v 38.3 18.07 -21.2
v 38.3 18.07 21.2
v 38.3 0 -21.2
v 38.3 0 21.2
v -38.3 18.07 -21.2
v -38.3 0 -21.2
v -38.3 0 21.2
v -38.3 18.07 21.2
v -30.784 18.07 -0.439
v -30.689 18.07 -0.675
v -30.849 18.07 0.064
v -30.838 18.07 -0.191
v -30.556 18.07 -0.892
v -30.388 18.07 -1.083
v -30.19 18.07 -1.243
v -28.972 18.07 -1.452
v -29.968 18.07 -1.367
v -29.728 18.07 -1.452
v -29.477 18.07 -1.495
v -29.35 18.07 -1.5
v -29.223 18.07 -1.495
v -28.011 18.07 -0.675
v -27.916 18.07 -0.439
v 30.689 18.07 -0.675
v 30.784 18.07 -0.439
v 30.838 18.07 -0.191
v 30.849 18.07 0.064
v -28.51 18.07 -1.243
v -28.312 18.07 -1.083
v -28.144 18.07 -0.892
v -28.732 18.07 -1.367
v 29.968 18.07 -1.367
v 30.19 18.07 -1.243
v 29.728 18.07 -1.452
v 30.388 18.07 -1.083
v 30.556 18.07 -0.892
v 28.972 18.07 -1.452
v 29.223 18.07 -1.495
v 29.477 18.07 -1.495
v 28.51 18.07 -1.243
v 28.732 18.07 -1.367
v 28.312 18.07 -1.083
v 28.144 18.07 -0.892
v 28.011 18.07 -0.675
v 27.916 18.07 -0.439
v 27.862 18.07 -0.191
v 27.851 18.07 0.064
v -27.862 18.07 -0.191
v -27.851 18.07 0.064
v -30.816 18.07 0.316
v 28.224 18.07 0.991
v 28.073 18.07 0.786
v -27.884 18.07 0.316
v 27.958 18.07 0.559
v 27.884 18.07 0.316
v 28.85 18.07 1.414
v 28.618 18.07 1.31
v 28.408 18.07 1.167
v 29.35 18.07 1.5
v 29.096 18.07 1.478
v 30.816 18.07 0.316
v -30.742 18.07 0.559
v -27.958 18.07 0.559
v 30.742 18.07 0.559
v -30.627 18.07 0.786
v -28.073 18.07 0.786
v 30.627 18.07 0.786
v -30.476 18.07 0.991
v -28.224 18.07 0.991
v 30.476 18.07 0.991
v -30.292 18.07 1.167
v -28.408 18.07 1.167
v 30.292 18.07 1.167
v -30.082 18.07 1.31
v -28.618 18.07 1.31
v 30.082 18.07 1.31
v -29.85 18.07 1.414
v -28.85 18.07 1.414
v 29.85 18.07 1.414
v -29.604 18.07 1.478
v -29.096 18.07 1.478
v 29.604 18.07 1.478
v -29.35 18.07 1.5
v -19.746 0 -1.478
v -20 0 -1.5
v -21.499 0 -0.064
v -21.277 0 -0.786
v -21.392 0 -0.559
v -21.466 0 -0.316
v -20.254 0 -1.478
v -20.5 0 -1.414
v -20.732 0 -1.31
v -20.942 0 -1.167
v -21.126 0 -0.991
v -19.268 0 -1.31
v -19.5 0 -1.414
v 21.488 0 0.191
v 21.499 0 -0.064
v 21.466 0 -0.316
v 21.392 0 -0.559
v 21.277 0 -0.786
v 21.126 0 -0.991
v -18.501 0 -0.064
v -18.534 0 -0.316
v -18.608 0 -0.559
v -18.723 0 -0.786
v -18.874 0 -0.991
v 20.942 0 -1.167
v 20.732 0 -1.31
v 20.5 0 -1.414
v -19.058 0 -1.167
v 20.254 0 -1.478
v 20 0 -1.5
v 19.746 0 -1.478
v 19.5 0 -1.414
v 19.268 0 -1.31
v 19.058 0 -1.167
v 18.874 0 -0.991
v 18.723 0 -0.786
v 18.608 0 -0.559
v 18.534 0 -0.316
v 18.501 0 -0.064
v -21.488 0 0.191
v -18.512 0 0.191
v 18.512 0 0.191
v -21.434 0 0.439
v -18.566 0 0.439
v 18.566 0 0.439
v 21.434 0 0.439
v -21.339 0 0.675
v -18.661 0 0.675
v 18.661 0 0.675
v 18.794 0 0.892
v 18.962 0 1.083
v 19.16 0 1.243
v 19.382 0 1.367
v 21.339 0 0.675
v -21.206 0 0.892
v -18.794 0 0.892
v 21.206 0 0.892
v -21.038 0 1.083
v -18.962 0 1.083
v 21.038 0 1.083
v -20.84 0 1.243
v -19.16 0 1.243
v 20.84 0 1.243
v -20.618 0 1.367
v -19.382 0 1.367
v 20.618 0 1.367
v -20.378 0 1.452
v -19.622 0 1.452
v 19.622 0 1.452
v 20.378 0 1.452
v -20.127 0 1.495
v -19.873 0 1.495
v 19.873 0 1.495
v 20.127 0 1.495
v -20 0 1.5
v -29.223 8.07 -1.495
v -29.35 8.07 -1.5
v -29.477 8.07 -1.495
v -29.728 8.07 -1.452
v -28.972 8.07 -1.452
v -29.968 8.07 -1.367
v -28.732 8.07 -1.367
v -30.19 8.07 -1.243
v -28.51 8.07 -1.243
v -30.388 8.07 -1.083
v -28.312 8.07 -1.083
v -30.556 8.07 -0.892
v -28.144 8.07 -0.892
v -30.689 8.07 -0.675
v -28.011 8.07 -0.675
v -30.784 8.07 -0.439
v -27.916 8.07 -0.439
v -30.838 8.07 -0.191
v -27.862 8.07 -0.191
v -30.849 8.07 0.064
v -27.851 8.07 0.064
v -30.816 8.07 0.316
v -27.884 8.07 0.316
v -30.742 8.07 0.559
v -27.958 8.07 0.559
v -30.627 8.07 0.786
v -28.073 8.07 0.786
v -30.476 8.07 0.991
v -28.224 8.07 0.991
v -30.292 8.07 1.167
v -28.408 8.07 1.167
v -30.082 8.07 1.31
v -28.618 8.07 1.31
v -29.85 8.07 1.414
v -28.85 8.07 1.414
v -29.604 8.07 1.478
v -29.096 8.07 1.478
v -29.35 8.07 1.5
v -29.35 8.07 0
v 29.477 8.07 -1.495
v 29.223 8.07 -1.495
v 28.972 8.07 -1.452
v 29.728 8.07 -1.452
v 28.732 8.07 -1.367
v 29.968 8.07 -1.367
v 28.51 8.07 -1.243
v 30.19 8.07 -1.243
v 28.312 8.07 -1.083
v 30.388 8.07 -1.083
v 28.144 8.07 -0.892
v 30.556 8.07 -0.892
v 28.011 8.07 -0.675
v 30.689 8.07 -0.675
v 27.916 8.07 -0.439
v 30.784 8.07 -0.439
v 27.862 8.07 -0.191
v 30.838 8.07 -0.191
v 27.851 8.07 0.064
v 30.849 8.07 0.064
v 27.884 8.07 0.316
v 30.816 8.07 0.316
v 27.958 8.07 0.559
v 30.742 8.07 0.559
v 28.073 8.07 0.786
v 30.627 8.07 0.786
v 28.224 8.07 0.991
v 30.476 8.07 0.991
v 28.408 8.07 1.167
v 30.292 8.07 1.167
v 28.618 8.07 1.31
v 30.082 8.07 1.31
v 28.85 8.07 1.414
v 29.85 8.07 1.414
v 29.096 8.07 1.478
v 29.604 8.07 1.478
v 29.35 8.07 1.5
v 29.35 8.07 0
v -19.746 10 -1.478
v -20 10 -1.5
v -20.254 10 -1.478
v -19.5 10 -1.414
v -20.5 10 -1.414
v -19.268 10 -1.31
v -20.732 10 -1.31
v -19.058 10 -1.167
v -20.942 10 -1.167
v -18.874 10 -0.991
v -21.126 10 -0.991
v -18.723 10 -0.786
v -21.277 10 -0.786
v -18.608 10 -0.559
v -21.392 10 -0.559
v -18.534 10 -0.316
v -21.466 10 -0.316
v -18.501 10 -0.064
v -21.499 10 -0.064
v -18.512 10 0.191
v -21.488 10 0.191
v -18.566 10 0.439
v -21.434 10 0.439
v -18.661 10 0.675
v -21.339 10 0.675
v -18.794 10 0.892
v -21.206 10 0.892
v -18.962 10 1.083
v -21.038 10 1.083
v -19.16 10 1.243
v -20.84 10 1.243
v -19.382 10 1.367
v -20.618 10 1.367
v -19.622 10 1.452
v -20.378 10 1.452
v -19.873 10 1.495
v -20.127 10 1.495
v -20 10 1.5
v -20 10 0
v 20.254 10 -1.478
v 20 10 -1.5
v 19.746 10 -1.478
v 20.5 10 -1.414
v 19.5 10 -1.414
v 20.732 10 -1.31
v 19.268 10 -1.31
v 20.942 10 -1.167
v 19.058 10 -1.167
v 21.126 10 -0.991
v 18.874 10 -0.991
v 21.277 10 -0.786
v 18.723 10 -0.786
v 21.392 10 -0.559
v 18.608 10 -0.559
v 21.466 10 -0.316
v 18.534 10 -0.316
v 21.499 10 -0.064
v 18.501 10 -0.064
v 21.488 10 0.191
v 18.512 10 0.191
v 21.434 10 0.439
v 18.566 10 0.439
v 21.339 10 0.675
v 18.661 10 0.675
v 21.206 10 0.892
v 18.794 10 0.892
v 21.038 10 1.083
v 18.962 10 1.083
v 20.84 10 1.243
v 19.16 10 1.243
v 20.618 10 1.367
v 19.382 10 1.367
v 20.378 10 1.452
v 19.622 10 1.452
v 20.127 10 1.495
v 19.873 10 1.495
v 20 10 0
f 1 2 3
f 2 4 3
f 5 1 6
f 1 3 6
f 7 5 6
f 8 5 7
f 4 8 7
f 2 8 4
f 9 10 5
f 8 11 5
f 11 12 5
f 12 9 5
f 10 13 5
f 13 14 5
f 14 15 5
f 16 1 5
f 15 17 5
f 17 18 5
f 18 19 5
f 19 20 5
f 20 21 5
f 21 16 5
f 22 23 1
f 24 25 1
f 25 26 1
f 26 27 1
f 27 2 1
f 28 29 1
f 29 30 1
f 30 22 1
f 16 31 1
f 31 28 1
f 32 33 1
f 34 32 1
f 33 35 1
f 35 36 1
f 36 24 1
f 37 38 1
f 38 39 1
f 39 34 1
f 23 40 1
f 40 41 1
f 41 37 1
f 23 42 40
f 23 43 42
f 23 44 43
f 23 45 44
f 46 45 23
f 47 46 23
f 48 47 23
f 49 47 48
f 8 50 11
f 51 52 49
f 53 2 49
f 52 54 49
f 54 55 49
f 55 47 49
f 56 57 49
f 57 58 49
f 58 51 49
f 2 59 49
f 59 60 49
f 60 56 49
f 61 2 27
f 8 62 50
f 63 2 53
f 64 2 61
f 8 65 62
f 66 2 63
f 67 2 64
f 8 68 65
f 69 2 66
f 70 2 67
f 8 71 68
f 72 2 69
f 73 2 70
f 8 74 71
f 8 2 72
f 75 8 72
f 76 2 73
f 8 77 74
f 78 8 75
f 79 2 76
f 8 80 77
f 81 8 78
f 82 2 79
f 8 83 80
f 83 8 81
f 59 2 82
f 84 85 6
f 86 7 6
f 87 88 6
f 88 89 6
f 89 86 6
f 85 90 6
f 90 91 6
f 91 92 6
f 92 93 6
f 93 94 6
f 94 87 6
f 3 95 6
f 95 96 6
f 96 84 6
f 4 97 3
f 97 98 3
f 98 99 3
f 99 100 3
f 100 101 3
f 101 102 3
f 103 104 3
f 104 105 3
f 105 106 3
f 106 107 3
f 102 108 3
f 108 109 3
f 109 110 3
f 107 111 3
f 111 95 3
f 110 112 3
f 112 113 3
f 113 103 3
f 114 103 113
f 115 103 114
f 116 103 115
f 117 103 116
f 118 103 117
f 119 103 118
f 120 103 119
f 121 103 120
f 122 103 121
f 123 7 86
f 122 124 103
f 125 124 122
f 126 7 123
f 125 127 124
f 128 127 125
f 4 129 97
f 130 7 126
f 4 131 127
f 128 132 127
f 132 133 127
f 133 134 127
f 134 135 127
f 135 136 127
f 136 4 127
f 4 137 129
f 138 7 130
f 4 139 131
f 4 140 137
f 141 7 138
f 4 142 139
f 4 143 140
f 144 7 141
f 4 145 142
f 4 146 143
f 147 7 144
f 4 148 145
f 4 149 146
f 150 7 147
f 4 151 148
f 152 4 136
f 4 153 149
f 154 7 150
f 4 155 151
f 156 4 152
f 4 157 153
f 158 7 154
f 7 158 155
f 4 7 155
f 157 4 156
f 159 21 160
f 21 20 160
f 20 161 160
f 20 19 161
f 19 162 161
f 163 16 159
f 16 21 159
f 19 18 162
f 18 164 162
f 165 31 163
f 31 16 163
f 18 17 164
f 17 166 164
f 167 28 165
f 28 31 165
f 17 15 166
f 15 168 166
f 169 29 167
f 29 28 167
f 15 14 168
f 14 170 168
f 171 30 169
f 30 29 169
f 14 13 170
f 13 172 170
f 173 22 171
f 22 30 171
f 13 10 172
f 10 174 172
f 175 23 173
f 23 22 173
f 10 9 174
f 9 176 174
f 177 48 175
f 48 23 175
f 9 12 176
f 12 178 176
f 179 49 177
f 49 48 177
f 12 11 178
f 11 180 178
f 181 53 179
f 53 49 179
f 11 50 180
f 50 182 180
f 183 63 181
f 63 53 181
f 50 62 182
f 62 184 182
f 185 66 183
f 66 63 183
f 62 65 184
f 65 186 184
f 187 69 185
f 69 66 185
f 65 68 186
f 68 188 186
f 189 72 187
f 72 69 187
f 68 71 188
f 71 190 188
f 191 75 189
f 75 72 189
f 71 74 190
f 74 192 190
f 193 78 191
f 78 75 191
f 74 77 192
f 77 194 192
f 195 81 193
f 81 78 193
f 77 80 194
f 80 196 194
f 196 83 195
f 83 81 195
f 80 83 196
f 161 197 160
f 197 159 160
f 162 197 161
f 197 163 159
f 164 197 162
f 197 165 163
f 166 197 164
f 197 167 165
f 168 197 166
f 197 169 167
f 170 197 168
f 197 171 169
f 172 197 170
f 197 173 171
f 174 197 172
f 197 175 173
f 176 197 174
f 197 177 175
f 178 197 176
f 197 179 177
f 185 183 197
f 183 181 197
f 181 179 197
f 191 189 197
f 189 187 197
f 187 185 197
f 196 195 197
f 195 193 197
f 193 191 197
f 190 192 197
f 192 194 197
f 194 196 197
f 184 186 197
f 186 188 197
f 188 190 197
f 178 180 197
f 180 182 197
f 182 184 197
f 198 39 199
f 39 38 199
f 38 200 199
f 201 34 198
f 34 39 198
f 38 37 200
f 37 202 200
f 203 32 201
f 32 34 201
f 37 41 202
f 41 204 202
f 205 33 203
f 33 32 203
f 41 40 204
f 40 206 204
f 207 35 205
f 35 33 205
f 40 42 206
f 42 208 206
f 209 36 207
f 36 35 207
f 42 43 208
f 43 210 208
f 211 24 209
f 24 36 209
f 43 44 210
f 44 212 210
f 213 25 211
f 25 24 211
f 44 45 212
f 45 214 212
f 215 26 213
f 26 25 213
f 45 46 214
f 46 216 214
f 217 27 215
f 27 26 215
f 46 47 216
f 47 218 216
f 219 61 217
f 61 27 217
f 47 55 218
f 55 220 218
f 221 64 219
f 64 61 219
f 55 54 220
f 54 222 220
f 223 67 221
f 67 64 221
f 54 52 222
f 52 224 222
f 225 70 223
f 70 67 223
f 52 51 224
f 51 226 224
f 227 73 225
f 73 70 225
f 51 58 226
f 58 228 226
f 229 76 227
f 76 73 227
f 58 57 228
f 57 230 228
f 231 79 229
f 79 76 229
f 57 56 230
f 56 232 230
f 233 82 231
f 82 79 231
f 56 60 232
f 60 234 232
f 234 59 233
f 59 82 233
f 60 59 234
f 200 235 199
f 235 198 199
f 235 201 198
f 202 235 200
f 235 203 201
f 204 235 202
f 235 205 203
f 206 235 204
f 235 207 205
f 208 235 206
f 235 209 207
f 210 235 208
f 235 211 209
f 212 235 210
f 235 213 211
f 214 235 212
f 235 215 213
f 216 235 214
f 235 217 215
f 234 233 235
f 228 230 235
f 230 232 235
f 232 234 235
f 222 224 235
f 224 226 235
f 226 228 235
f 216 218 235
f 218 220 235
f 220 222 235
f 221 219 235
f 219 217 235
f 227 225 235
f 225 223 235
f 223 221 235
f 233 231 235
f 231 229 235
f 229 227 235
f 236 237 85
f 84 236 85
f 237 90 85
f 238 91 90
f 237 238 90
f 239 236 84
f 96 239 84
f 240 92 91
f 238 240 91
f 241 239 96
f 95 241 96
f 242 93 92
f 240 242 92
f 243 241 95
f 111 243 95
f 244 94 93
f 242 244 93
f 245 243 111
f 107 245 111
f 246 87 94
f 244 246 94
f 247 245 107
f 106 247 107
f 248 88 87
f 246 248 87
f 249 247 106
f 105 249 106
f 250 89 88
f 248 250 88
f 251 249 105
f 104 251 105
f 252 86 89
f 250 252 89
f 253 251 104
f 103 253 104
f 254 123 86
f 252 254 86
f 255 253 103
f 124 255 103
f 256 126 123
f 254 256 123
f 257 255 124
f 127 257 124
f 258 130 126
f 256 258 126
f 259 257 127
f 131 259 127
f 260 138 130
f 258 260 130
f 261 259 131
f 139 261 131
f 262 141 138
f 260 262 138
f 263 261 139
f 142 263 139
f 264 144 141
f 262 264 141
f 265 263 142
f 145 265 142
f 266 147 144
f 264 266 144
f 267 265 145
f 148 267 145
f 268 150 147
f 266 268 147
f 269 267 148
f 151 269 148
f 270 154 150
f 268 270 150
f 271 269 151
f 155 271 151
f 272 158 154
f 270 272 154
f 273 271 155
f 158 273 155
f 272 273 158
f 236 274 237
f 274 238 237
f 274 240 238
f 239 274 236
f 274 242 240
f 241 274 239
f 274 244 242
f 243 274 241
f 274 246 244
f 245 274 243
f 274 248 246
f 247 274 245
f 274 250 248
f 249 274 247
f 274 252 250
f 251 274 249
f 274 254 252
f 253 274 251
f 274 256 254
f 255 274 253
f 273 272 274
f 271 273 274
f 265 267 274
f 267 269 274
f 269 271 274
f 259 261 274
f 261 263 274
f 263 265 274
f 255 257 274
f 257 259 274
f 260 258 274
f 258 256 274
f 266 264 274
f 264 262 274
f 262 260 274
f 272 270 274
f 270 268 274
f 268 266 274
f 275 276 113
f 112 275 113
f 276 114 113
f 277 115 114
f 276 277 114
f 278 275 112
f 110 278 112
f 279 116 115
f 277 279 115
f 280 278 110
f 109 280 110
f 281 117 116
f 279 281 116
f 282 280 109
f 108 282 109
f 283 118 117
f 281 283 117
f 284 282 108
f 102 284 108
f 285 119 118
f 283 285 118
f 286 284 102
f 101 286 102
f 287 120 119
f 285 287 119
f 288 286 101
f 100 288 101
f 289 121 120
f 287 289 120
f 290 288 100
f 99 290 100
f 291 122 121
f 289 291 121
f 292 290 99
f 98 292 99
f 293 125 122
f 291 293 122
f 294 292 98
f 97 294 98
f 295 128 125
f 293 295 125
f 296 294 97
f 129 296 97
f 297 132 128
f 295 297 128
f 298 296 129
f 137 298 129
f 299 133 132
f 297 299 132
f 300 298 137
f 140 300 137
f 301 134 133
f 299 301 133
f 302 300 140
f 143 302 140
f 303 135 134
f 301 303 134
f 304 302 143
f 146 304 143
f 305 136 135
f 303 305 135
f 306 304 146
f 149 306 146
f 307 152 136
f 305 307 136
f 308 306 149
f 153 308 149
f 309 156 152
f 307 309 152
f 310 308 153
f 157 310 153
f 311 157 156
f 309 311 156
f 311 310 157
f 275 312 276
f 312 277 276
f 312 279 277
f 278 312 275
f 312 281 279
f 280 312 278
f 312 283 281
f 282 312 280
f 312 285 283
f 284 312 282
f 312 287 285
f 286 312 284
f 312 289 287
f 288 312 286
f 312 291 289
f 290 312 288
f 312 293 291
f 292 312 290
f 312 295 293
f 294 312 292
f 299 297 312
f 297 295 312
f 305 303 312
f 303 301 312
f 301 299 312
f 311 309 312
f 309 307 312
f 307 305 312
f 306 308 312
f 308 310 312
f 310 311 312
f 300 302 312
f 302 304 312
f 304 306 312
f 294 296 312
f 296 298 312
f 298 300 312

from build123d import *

# Parameters (mm, degrees)
SKETCH_1_W          = 76.6
SKETCH_1_H          = 42.4
EXTRUDE_1_DEPTH     = 18.07
SKETCH_2_R          = 1.5
CUT_EXTRUDE_1_DEPTH = 10
SKETCH_3_R          = 1.5
CUT_EXTRUDE_2_DEPTH = 10


with BuildPart() as part:
    # Эскиз1 → Бобышка-Вытянуть1 (new body)
    with BuildSketch(Plane(origin=(0, 0, 0), x_dir=(1, 0, 0), z_dir=(0, 1, 0))):
        Rectangle(SKETCH_1_W, SKETCH_1_H)
    extrude(amount=EXTRUDE_1_DEPTH)

    # Эскиз2 → Вырез-Вытянуть1 (cut)
    with BuildSketch(Plane(origin=(0, 18.07, 0), x_dir=(1, 0, 0), z_dir=(0, 1, 0))):
        with Locations(Location((29.35, 0, 0), (0, 0, 270))):
            Circle(SKETCH_2_R)
        with Locations(Location((-29.35, 0, 0), (0, 0, 90))):
            Circle(SKETCH_2_R)
    extrude(amount=-CUT_EXTRUDE_1_DEPTH, mode=Mode.SUBTRACT)

    # Эскиз3 → Вырез-Вытянуть2 (cut)
    with BuildSketch(Plane.XZ):
        with Locations(Location((20, 0, 0), (0, 0, 270))):
            Circle(SKETCH_3_R)
        with Locations(Location((-20, 0, 0), (0, 0, 90))):
            Circle(SKETCH_3_R)
    extrude(amount=-CUT_EXTRUDE_2_DEPTH, mode=Mode.SUBTRACT)


solid = part.part
